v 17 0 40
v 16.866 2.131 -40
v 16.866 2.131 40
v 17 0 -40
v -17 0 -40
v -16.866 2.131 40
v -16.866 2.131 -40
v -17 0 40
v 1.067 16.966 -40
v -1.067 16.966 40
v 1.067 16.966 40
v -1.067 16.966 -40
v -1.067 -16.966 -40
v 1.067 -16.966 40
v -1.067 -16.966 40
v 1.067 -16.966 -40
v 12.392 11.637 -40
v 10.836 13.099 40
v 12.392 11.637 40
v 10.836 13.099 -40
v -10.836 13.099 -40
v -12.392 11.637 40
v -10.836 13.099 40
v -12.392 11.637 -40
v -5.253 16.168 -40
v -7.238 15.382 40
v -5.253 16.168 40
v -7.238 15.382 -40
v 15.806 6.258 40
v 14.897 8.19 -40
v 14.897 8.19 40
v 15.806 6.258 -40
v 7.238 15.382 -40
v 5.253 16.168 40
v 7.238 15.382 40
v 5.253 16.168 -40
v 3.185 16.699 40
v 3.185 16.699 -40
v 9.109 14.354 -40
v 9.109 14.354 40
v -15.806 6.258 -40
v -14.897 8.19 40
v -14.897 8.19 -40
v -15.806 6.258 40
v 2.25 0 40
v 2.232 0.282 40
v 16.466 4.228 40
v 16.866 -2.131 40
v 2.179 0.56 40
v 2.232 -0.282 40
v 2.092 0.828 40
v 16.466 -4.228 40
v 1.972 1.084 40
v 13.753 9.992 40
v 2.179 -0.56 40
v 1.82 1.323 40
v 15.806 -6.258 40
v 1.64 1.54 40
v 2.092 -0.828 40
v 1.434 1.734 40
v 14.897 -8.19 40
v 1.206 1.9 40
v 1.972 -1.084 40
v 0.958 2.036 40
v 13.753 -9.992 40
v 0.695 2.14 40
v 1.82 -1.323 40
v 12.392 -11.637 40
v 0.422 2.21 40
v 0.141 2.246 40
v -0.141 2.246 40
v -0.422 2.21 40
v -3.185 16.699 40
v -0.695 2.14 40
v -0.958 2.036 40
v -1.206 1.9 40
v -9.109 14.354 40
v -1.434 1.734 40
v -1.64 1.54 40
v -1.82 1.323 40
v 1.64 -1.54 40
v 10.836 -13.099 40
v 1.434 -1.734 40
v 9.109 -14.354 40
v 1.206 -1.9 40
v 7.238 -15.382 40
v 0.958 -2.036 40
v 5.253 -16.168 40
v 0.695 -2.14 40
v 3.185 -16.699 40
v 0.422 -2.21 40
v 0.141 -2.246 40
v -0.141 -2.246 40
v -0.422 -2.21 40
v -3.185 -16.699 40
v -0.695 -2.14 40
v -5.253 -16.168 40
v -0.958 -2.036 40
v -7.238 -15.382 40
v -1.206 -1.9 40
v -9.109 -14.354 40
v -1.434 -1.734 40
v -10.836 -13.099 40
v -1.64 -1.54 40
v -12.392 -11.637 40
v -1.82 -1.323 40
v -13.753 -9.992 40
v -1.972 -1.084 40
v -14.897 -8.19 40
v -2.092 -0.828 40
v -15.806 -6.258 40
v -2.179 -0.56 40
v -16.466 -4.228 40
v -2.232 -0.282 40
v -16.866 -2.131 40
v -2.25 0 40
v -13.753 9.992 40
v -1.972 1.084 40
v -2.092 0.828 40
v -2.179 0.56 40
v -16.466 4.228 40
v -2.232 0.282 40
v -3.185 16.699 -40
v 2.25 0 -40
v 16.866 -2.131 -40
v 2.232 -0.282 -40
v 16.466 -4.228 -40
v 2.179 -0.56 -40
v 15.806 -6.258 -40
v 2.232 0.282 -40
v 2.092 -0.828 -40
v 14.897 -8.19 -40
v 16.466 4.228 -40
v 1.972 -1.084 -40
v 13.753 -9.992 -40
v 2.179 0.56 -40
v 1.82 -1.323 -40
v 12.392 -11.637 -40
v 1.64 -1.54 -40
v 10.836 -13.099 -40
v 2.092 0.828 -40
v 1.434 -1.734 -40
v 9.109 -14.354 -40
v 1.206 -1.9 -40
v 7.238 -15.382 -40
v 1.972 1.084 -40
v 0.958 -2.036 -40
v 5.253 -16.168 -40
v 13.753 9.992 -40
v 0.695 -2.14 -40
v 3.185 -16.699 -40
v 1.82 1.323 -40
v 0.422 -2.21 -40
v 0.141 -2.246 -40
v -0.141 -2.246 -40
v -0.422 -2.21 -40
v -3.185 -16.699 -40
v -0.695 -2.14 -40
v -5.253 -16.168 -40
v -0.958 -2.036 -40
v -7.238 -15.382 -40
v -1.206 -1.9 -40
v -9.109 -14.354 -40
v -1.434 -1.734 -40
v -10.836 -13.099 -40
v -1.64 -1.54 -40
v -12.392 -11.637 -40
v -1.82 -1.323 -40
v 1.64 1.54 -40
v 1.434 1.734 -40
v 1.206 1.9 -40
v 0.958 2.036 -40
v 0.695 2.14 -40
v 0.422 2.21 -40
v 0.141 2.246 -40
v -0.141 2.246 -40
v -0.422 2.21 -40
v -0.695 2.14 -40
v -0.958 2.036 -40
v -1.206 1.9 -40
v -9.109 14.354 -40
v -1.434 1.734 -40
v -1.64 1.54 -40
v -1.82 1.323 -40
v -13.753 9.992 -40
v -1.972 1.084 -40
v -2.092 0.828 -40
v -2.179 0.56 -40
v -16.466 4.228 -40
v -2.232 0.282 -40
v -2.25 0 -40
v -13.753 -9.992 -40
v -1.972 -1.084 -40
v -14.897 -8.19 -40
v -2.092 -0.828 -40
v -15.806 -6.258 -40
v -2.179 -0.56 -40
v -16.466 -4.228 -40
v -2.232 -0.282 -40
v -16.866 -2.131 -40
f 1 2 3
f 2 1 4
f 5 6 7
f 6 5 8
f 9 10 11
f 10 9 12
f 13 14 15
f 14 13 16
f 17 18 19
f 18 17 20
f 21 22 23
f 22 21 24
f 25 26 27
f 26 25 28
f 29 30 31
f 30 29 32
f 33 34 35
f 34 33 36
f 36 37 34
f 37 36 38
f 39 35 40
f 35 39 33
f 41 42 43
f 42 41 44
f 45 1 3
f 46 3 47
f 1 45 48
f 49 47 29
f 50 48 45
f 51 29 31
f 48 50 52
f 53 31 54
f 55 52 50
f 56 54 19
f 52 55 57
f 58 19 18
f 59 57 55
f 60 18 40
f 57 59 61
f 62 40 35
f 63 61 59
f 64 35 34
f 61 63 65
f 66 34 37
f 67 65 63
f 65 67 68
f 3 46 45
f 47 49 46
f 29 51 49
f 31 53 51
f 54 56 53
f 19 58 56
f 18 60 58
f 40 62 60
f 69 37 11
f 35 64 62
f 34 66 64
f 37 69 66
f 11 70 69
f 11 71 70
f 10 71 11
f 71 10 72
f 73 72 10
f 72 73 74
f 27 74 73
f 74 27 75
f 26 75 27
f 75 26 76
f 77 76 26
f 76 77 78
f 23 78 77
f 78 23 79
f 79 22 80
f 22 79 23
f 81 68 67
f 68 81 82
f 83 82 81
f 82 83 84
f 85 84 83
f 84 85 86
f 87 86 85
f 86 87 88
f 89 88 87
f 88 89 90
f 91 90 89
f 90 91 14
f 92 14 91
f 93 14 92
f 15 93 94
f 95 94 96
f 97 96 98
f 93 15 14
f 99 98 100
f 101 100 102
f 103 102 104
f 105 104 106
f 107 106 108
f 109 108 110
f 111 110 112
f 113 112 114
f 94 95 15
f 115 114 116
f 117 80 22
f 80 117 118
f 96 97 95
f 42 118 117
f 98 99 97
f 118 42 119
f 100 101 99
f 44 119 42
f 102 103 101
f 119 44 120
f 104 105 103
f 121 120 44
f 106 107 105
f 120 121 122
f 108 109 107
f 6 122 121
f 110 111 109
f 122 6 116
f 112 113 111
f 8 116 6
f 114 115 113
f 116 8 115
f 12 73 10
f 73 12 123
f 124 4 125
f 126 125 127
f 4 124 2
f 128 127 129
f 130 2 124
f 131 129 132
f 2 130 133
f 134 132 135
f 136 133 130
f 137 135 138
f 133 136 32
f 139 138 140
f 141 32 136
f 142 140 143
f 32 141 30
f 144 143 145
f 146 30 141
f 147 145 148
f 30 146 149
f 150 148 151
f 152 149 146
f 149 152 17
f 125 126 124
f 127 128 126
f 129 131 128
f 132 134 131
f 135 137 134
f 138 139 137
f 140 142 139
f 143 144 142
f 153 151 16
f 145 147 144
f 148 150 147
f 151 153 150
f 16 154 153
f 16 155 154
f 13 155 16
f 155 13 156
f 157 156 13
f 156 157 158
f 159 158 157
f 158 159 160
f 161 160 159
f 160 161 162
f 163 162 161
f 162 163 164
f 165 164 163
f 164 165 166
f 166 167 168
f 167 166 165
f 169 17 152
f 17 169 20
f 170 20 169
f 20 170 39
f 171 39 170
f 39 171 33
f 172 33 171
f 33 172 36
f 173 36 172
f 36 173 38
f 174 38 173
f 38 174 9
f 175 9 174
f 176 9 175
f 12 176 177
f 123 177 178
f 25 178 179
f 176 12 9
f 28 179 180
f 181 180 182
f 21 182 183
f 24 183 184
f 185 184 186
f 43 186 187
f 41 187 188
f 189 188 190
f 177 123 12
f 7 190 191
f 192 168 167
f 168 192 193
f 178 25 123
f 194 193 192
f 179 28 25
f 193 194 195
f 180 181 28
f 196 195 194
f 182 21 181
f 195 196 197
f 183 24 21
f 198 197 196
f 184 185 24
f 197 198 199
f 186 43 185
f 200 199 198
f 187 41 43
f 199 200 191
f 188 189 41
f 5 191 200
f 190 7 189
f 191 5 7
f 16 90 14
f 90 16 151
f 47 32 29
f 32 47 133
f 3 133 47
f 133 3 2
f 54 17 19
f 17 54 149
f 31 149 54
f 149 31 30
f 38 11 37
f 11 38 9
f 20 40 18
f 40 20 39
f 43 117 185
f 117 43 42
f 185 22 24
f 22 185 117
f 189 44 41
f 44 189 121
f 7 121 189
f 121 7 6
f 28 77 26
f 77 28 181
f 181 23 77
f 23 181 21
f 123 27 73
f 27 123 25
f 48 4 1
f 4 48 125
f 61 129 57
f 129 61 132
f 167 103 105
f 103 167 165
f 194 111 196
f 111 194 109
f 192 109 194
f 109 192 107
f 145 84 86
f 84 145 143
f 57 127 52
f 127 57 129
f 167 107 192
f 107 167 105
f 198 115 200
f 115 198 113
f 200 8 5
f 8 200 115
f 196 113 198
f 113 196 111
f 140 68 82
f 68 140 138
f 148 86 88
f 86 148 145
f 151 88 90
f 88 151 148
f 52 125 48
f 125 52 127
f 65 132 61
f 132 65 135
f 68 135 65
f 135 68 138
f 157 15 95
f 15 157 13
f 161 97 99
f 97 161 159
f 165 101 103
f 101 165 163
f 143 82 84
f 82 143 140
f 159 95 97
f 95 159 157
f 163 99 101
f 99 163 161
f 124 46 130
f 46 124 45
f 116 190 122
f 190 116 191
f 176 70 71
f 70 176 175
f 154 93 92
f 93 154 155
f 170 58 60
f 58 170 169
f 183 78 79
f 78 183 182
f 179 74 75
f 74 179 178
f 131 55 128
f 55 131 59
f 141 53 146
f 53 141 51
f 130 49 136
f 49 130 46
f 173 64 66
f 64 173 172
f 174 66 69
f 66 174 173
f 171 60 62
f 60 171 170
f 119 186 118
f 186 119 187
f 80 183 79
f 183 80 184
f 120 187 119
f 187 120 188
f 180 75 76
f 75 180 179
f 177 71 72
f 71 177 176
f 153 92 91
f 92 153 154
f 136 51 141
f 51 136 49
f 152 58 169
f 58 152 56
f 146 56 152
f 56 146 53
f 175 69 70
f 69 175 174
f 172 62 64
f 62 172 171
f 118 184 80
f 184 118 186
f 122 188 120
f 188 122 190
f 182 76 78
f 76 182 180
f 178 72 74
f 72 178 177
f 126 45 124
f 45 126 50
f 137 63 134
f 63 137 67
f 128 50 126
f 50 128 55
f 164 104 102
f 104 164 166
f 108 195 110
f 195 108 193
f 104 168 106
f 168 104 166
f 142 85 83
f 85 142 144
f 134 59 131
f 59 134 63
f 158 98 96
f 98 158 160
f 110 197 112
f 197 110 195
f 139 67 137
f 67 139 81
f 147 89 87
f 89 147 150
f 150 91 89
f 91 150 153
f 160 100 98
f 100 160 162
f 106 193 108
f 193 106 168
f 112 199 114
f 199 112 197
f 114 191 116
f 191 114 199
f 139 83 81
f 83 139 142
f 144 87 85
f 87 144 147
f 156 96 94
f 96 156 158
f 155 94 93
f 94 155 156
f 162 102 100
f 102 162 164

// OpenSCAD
$fn = 50;


difference() {
	union() {
		translate(v = [0, 0, -40.0000000000]) {
			cylinder(h = 80, r = 17.0000000000);
		}
	}
	union() {
		translate(v = [0, 0, -100.0000000000]) {
			cylinder(h = 200, r = 2.2500000000);
		}
	}
}
